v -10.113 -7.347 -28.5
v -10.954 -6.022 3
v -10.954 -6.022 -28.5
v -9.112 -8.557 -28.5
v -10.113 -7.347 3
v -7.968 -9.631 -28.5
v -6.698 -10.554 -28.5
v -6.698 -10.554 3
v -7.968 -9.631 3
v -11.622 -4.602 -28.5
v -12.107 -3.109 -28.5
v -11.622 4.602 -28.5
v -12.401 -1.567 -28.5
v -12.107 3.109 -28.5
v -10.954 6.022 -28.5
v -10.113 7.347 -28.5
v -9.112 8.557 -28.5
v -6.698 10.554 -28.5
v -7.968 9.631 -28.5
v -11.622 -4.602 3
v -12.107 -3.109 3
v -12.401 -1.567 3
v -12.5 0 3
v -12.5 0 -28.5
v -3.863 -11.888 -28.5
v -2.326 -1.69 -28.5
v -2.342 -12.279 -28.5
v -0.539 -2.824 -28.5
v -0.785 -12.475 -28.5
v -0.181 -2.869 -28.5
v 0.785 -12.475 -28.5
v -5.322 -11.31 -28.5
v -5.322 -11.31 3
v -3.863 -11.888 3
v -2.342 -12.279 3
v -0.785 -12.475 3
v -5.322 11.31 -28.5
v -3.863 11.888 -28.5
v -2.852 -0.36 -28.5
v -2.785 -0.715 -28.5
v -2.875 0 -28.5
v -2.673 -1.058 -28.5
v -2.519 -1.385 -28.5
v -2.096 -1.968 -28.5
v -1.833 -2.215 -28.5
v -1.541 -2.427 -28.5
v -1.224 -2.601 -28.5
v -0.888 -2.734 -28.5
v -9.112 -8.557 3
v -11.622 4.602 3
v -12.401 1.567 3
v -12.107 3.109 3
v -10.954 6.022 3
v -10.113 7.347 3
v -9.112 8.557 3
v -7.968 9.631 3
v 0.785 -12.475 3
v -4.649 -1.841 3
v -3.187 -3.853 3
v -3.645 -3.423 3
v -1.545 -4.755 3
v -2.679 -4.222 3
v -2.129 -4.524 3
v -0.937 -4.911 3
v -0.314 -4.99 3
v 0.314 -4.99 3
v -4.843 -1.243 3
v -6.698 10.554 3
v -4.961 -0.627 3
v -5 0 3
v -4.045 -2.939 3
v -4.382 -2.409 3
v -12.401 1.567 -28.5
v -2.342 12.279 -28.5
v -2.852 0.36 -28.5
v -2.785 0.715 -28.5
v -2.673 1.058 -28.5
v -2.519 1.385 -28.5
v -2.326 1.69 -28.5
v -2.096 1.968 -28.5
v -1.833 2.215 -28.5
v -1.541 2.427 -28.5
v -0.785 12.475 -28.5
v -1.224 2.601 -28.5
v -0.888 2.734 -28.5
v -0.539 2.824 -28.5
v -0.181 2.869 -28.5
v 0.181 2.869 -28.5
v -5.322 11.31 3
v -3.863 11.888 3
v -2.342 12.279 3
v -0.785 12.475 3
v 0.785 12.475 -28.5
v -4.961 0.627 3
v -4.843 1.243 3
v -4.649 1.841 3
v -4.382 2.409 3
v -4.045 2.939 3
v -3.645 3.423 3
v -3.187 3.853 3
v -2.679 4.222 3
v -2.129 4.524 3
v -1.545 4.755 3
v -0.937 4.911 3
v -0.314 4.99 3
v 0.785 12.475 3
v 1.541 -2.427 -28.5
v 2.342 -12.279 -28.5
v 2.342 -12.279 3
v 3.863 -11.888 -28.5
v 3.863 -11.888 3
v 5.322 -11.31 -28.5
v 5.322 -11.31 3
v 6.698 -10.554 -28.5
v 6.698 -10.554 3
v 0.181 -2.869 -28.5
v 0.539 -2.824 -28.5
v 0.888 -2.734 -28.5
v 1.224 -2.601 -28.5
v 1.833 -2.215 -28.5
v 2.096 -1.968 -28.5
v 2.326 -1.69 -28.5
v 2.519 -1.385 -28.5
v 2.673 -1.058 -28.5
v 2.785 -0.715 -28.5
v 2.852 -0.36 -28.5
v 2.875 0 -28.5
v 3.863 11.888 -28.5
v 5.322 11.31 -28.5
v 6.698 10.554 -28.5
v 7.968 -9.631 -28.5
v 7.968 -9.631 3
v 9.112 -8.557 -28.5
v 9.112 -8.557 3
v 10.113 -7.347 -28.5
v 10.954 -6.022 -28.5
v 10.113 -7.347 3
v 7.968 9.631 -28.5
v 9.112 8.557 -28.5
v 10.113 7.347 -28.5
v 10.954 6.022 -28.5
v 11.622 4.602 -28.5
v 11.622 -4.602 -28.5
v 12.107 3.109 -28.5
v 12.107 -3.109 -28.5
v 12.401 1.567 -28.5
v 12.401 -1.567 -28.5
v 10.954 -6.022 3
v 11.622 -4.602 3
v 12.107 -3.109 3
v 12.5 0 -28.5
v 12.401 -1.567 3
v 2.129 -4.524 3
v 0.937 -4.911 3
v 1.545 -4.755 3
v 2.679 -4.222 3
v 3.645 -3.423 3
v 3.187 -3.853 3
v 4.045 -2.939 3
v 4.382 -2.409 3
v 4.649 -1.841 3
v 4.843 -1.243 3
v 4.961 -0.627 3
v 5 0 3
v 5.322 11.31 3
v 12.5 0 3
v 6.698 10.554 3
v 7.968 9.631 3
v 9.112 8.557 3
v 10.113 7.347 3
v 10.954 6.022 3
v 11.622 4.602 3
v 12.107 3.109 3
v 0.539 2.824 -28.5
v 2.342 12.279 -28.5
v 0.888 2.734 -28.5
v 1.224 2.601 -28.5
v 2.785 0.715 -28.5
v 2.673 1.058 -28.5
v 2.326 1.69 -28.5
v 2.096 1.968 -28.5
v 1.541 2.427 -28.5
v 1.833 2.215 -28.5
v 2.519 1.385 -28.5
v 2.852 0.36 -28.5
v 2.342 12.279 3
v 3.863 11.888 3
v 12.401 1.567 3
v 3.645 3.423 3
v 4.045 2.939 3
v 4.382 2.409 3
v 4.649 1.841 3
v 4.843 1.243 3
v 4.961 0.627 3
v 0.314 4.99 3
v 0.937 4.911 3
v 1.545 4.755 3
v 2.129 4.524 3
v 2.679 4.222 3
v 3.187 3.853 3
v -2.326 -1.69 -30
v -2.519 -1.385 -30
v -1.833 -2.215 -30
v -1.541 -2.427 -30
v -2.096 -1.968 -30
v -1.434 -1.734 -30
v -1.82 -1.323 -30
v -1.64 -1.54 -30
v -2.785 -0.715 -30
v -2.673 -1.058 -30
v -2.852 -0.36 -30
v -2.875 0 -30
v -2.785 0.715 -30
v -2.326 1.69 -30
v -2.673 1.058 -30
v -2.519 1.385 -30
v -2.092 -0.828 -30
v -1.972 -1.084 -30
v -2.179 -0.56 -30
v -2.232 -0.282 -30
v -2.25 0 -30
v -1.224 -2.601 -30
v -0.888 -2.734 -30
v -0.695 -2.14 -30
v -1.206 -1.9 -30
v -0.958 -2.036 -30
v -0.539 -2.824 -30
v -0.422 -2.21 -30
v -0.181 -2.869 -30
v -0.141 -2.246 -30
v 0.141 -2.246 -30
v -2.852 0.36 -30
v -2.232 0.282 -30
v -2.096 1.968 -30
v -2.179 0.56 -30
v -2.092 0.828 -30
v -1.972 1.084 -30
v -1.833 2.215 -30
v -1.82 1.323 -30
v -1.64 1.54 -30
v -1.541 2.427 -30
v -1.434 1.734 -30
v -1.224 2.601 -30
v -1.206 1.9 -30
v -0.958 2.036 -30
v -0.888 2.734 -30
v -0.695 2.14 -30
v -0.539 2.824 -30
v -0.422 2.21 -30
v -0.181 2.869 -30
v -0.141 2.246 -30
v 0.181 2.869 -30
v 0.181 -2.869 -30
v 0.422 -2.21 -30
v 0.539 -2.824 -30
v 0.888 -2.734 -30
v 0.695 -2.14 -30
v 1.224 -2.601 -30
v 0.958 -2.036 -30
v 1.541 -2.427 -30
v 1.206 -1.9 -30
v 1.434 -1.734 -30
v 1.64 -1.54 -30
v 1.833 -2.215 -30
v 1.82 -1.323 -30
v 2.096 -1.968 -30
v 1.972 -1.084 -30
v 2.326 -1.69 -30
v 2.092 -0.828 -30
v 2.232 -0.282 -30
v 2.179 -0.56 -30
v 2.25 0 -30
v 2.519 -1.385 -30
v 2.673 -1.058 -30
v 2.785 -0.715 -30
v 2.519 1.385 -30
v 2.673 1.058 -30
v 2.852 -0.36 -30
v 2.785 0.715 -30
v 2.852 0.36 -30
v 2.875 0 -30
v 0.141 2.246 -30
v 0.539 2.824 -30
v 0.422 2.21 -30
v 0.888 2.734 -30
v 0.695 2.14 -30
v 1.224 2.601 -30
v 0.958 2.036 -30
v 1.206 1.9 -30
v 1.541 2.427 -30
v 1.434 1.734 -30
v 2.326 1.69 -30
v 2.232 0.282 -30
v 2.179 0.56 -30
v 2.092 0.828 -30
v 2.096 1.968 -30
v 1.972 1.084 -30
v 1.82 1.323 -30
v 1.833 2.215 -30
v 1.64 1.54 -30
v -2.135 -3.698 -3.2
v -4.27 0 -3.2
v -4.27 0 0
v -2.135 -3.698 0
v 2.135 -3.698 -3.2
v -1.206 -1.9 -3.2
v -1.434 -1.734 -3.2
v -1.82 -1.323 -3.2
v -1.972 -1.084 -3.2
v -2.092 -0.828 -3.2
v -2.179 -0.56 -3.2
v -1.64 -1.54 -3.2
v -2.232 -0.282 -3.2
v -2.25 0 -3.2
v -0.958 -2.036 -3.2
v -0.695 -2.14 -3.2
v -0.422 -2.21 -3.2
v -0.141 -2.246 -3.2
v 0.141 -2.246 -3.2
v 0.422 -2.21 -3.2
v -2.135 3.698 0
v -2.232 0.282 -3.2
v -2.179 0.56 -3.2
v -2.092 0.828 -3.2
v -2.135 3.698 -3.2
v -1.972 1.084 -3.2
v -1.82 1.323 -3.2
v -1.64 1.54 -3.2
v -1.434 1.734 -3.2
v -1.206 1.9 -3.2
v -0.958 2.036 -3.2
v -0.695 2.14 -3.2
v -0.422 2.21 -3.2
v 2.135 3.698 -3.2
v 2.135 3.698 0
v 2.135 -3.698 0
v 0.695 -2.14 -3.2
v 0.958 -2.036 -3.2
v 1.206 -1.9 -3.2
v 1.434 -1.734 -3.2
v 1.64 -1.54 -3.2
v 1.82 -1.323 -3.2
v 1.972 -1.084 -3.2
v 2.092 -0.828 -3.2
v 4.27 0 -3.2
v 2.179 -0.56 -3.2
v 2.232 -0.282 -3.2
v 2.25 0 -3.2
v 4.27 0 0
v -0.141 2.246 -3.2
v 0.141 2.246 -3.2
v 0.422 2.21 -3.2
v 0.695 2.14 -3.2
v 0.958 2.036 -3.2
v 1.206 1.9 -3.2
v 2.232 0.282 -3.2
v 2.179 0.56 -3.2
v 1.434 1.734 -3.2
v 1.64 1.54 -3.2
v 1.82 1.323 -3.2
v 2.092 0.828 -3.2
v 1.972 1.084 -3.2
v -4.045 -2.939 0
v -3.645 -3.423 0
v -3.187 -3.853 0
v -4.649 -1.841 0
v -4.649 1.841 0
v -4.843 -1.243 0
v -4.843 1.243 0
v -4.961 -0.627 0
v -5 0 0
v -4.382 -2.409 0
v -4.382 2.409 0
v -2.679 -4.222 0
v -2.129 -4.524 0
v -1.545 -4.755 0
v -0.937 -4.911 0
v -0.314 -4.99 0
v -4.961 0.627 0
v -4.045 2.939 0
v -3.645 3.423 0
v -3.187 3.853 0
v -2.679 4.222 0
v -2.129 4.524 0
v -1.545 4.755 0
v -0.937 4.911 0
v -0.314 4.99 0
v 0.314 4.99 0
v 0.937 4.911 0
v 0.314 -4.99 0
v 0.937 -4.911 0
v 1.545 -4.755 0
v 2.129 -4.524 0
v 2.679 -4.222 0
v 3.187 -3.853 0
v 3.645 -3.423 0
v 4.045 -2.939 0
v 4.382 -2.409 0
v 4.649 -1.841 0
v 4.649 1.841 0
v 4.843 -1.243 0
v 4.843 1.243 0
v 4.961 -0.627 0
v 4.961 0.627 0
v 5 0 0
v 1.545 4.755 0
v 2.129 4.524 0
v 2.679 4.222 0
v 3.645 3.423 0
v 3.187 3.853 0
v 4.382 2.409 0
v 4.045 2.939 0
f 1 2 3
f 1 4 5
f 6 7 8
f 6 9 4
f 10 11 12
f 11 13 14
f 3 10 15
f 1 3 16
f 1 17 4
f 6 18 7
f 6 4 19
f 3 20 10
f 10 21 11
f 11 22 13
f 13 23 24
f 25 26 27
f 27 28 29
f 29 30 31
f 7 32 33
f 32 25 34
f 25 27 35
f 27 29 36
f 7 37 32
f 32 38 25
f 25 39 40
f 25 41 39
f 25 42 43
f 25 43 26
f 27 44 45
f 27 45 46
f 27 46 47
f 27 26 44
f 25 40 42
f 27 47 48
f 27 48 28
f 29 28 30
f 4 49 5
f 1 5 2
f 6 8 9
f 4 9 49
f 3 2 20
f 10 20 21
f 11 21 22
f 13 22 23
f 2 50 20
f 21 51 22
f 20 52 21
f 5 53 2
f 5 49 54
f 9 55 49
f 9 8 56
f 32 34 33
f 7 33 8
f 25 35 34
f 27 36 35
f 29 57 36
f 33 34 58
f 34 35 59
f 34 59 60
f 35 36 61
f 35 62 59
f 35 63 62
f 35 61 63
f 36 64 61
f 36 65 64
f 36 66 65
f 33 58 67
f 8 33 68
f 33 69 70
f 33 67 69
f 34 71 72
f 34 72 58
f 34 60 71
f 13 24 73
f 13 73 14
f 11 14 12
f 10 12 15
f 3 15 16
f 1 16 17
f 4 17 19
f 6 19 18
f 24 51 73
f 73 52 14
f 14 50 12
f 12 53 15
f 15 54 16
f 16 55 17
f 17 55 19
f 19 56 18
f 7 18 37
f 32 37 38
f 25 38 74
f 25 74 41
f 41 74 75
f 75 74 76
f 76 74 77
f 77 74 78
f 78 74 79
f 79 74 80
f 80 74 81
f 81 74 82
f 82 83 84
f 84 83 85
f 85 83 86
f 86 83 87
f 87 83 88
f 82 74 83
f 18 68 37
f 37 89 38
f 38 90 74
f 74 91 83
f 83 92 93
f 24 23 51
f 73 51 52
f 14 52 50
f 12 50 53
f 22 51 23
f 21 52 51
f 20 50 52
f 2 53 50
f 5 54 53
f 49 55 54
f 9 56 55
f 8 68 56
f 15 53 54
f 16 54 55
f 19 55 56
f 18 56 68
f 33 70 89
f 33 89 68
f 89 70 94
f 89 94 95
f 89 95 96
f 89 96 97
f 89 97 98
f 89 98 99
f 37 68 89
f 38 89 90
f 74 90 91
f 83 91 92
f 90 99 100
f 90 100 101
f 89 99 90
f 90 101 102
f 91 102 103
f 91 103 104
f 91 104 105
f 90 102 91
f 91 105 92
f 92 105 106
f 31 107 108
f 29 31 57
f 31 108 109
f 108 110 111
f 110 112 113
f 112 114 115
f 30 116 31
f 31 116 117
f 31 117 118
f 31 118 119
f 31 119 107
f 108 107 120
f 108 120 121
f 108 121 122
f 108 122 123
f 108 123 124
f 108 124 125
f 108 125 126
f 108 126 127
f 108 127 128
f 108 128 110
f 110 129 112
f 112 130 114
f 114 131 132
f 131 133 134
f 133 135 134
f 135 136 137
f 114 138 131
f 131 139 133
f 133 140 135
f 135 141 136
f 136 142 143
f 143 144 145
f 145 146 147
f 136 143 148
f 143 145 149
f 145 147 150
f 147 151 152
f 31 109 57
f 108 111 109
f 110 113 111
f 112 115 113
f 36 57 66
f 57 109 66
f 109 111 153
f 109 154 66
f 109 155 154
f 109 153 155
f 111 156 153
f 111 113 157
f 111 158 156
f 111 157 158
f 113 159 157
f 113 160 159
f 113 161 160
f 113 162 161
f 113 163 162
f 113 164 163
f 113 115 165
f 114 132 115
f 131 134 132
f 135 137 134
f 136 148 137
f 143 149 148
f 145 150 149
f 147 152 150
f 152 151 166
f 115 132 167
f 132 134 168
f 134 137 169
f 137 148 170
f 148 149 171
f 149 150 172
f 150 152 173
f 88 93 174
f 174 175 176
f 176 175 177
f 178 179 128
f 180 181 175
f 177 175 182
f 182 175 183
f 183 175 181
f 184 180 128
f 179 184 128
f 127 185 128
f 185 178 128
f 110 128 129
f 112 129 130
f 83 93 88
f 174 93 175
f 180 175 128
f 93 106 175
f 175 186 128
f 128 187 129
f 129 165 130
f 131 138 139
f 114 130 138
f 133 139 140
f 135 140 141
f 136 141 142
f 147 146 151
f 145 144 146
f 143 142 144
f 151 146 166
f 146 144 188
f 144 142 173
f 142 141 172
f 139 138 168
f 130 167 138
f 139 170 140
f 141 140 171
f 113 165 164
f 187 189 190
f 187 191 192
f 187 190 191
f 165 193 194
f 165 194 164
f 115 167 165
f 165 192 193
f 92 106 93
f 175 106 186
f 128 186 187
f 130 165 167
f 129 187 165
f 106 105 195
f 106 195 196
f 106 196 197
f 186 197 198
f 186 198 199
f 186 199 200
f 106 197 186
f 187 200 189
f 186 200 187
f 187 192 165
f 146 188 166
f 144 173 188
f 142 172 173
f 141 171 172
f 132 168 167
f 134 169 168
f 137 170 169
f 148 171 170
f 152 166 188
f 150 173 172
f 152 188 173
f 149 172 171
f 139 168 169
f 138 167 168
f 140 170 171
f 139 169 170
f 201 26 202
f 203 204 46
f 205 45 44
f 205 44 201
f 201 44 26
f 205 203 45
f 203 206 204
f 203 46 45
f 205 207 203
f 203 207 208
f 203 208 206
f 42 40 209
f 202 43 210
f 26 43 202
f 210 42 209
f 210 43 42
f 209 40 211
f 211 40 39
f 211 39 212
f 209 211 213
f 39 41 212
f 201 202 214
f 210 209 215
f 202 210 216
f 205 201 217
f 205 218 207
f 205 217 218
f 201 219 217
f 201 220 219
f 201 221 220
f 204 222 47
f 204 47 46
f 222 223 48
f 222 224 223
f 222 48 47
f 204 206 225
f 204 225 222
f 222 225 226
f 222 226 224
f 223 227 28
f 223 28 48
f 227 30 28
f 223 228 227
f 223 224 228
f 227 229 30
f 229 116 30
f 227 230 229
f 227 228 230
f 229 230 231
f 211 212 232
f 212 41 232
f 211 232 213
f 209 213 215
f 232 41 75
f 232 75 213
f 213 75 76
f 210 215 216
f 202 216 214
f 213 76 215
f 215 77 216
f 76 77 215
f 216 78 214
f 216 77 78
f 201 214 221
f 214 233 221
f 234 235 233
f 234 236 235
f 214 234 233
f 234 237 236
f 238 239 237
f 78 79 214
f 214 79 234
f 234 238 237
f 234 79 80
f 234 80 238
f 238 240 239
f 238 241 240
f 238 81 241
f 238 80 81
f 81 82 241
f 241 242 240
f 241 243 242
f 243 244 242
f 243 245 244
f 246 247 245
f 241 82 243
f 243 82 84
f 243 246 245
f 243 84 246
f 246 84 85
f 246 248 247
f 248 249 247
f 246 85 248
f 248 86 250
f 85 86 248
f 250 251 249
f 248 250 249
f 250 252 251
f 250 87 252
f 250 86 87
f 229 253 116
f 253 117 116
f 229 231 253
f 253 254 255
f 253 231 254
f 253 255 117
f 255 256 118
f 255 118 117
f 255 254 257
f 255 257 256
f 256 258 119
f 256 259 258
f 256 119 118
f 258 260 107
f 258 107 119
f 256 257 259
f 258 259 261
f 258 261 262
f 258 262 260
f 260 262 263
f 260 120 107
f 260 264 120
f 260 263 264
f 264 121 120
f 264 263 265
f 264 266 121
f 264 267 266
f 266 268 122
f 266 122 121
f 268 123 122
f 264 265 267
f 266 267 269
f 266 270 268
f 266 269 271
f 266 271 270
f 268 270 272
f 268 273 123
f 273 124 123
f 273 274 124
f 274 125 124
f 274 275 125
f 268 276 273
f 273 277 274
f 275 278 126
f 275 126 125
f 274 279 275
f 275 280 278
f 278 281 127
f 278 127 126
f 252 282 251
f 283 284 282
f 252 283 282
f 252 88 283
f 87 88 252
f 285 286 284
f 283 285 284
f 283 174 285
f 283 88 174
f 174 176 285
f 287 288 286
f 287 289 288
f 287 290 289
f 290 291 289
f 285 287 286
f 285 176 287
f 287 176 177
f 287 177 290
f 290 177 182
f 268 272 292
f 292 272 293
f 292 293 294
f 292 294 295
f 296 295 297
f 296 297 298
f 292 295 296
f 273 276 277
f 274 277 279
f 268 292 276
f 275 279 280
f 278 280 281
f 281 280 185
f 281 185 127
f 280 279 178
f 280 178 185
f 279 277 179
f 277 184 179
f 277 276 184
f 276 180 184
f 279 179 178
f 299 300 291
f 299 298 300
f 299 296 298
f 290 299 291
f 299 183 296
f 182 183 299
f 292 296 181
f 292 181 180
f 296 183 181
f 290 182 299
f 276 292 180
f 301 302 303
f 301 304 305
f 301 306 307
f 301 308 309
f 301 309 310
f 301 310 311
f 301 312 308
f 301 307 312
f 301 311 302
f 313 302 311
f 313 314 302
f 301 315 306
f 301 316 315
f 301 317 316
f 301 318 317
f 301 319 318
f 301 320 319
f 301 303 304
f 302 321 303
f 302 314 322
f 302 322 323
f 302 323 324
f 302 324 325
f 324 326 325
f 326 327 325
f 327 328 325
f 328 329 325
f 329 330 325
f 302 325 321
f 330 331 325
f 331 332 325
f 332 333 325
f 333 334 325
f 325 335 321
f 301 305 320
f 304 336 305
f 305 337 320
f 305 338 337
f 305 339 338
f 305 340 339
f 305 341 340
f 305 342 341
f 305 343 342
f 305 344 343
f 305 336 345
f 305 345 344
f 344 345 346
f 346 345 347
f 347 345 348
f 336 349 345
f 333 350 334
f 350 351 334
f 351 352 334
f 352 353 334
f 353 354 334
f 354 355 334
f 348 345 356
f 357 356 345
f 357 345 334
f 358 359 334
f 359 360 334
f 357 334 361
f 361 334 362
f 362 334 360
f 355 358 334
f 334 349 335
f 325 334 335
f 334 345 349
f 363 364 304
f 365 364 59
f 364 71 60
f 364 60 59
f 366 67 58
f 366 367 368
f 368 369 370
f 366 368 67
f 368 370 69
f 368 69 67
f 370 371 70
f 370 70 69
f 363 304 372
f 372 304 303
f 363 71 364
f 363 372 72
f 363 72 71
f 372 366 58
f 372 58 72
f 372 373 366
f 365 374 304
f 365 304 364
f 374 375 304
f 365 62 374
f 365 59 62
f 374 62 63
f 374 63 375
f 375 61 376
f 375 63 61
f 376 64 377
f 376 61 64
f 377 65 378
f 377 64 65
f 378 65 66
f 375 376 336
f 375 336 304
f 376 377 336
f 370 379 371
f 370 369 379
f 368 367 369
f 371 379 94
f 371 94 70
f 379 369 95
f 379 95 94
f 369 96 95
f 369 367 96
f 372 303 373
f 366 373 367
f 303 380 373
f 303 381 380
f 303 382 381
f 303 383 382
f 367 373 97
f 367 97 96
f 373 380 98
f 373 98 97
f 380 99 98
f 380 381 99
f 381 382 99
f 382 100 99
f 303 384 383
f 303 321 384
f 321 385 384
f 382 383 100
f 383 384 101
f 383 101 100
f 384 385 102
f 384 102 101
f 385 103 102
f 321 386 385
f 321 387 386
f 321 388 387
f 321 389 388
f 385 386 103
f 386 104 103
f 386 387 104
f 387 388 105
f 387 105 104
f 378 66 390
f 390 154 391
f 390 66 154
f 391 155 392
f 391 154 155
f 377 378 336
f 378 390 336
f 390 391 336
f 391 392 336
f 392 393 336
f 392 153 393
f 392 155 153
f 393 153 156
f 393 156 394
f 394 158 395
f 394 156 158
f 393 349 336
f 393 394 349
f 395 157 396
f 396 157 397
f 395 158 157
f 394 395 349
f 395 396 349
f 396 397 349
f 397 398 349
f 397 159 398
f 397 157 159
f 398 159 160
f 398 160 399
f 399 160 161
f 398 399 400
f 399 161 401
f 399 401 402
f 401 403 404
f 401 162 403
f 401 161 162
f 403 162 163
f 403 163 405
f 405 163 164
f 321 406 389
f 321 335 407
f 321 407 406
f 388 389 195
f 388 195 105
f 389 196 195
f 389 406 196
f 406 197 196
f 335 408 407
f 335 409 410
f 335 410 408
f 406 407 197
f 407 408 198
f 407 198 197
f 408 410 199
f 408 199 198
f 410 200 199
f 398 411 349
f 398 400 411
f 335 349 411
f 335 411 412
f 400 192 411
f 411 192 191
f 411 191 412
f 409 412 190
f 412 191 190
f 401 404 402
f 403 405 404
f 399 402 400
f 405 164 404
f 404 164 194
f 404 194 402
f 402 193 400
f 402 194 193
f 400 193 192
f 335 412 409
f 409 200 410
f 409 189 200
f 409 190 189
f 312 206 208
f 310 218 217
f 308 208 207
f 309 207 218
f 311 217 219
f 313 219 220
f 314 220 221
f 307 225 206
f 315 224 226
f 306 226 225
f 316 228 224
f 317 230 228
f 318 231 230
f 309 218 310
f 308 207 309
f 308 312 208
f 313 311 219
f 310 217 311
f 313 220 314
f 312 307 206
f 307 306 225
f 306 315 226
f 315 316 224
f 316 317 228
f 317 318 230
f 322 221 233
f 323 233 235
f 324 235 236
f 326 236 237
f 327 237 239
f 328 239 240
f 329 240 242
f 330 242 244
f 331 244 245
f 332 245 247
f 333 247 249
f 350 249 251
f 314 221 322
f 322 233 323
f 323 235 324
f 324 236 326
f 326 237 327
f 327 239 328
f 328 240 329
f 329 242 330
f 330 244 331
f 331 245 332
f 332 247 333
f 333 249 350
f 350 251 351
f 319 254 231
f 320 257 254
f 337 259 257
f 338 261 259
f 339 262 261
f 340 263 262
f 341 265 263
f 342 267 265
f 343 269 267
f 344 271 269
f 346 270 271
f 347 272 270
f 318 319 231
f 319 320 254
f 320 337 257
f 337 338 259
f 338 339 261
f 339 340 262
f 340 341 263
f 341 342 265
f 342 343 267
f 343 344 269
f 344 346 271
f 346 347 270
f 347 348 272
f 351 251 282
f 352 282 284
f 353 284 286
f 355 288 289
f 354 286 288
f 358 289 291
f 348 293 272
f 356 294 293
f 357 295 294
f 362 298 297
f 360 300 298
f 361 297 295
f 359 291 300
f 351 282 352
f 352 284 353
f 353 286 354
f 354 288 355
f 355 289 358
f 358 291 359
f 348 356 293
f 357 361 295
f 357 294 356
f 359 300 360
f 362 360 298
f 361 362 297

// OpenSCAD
$fn = 50;

difference() {
	union() {
		translate(v = [0, 0, -28.5]) {
			cylinder(h = 31.5, r = 12.5);
		}
		#translate(v = [0, 0, -30.0]) {
			cylinder(h = 30, r = 2.875);
		}
	}
	union() {
		translate(v = [0, 0, 0]) {
			rotate(a = [0, 0, 0]) {
				difference() {
					union() {
						translate(v = [0, 0, -3.2]) {
							linear_extrude(height = 3.2) {
								polygon(points = [[4.2698, 0.0], [2.1349000000000005, 3.697755269078796], [-2.134899999999999, 3.6977552690787965], [-4.2698, 5.228996902999369e-16], [-2.134900000000002, -3.6977552690787956], [2.1348999999999974, -3.697755269078798]]);
							}
						}
					}
					union();
				}
			}
		}
		#cylinder(h = 3, r = 5.0);
		#translate(v = [0, 0, -100.0]) {
			cylinder(h = 200, r = 2.25);
		}
	}
}
